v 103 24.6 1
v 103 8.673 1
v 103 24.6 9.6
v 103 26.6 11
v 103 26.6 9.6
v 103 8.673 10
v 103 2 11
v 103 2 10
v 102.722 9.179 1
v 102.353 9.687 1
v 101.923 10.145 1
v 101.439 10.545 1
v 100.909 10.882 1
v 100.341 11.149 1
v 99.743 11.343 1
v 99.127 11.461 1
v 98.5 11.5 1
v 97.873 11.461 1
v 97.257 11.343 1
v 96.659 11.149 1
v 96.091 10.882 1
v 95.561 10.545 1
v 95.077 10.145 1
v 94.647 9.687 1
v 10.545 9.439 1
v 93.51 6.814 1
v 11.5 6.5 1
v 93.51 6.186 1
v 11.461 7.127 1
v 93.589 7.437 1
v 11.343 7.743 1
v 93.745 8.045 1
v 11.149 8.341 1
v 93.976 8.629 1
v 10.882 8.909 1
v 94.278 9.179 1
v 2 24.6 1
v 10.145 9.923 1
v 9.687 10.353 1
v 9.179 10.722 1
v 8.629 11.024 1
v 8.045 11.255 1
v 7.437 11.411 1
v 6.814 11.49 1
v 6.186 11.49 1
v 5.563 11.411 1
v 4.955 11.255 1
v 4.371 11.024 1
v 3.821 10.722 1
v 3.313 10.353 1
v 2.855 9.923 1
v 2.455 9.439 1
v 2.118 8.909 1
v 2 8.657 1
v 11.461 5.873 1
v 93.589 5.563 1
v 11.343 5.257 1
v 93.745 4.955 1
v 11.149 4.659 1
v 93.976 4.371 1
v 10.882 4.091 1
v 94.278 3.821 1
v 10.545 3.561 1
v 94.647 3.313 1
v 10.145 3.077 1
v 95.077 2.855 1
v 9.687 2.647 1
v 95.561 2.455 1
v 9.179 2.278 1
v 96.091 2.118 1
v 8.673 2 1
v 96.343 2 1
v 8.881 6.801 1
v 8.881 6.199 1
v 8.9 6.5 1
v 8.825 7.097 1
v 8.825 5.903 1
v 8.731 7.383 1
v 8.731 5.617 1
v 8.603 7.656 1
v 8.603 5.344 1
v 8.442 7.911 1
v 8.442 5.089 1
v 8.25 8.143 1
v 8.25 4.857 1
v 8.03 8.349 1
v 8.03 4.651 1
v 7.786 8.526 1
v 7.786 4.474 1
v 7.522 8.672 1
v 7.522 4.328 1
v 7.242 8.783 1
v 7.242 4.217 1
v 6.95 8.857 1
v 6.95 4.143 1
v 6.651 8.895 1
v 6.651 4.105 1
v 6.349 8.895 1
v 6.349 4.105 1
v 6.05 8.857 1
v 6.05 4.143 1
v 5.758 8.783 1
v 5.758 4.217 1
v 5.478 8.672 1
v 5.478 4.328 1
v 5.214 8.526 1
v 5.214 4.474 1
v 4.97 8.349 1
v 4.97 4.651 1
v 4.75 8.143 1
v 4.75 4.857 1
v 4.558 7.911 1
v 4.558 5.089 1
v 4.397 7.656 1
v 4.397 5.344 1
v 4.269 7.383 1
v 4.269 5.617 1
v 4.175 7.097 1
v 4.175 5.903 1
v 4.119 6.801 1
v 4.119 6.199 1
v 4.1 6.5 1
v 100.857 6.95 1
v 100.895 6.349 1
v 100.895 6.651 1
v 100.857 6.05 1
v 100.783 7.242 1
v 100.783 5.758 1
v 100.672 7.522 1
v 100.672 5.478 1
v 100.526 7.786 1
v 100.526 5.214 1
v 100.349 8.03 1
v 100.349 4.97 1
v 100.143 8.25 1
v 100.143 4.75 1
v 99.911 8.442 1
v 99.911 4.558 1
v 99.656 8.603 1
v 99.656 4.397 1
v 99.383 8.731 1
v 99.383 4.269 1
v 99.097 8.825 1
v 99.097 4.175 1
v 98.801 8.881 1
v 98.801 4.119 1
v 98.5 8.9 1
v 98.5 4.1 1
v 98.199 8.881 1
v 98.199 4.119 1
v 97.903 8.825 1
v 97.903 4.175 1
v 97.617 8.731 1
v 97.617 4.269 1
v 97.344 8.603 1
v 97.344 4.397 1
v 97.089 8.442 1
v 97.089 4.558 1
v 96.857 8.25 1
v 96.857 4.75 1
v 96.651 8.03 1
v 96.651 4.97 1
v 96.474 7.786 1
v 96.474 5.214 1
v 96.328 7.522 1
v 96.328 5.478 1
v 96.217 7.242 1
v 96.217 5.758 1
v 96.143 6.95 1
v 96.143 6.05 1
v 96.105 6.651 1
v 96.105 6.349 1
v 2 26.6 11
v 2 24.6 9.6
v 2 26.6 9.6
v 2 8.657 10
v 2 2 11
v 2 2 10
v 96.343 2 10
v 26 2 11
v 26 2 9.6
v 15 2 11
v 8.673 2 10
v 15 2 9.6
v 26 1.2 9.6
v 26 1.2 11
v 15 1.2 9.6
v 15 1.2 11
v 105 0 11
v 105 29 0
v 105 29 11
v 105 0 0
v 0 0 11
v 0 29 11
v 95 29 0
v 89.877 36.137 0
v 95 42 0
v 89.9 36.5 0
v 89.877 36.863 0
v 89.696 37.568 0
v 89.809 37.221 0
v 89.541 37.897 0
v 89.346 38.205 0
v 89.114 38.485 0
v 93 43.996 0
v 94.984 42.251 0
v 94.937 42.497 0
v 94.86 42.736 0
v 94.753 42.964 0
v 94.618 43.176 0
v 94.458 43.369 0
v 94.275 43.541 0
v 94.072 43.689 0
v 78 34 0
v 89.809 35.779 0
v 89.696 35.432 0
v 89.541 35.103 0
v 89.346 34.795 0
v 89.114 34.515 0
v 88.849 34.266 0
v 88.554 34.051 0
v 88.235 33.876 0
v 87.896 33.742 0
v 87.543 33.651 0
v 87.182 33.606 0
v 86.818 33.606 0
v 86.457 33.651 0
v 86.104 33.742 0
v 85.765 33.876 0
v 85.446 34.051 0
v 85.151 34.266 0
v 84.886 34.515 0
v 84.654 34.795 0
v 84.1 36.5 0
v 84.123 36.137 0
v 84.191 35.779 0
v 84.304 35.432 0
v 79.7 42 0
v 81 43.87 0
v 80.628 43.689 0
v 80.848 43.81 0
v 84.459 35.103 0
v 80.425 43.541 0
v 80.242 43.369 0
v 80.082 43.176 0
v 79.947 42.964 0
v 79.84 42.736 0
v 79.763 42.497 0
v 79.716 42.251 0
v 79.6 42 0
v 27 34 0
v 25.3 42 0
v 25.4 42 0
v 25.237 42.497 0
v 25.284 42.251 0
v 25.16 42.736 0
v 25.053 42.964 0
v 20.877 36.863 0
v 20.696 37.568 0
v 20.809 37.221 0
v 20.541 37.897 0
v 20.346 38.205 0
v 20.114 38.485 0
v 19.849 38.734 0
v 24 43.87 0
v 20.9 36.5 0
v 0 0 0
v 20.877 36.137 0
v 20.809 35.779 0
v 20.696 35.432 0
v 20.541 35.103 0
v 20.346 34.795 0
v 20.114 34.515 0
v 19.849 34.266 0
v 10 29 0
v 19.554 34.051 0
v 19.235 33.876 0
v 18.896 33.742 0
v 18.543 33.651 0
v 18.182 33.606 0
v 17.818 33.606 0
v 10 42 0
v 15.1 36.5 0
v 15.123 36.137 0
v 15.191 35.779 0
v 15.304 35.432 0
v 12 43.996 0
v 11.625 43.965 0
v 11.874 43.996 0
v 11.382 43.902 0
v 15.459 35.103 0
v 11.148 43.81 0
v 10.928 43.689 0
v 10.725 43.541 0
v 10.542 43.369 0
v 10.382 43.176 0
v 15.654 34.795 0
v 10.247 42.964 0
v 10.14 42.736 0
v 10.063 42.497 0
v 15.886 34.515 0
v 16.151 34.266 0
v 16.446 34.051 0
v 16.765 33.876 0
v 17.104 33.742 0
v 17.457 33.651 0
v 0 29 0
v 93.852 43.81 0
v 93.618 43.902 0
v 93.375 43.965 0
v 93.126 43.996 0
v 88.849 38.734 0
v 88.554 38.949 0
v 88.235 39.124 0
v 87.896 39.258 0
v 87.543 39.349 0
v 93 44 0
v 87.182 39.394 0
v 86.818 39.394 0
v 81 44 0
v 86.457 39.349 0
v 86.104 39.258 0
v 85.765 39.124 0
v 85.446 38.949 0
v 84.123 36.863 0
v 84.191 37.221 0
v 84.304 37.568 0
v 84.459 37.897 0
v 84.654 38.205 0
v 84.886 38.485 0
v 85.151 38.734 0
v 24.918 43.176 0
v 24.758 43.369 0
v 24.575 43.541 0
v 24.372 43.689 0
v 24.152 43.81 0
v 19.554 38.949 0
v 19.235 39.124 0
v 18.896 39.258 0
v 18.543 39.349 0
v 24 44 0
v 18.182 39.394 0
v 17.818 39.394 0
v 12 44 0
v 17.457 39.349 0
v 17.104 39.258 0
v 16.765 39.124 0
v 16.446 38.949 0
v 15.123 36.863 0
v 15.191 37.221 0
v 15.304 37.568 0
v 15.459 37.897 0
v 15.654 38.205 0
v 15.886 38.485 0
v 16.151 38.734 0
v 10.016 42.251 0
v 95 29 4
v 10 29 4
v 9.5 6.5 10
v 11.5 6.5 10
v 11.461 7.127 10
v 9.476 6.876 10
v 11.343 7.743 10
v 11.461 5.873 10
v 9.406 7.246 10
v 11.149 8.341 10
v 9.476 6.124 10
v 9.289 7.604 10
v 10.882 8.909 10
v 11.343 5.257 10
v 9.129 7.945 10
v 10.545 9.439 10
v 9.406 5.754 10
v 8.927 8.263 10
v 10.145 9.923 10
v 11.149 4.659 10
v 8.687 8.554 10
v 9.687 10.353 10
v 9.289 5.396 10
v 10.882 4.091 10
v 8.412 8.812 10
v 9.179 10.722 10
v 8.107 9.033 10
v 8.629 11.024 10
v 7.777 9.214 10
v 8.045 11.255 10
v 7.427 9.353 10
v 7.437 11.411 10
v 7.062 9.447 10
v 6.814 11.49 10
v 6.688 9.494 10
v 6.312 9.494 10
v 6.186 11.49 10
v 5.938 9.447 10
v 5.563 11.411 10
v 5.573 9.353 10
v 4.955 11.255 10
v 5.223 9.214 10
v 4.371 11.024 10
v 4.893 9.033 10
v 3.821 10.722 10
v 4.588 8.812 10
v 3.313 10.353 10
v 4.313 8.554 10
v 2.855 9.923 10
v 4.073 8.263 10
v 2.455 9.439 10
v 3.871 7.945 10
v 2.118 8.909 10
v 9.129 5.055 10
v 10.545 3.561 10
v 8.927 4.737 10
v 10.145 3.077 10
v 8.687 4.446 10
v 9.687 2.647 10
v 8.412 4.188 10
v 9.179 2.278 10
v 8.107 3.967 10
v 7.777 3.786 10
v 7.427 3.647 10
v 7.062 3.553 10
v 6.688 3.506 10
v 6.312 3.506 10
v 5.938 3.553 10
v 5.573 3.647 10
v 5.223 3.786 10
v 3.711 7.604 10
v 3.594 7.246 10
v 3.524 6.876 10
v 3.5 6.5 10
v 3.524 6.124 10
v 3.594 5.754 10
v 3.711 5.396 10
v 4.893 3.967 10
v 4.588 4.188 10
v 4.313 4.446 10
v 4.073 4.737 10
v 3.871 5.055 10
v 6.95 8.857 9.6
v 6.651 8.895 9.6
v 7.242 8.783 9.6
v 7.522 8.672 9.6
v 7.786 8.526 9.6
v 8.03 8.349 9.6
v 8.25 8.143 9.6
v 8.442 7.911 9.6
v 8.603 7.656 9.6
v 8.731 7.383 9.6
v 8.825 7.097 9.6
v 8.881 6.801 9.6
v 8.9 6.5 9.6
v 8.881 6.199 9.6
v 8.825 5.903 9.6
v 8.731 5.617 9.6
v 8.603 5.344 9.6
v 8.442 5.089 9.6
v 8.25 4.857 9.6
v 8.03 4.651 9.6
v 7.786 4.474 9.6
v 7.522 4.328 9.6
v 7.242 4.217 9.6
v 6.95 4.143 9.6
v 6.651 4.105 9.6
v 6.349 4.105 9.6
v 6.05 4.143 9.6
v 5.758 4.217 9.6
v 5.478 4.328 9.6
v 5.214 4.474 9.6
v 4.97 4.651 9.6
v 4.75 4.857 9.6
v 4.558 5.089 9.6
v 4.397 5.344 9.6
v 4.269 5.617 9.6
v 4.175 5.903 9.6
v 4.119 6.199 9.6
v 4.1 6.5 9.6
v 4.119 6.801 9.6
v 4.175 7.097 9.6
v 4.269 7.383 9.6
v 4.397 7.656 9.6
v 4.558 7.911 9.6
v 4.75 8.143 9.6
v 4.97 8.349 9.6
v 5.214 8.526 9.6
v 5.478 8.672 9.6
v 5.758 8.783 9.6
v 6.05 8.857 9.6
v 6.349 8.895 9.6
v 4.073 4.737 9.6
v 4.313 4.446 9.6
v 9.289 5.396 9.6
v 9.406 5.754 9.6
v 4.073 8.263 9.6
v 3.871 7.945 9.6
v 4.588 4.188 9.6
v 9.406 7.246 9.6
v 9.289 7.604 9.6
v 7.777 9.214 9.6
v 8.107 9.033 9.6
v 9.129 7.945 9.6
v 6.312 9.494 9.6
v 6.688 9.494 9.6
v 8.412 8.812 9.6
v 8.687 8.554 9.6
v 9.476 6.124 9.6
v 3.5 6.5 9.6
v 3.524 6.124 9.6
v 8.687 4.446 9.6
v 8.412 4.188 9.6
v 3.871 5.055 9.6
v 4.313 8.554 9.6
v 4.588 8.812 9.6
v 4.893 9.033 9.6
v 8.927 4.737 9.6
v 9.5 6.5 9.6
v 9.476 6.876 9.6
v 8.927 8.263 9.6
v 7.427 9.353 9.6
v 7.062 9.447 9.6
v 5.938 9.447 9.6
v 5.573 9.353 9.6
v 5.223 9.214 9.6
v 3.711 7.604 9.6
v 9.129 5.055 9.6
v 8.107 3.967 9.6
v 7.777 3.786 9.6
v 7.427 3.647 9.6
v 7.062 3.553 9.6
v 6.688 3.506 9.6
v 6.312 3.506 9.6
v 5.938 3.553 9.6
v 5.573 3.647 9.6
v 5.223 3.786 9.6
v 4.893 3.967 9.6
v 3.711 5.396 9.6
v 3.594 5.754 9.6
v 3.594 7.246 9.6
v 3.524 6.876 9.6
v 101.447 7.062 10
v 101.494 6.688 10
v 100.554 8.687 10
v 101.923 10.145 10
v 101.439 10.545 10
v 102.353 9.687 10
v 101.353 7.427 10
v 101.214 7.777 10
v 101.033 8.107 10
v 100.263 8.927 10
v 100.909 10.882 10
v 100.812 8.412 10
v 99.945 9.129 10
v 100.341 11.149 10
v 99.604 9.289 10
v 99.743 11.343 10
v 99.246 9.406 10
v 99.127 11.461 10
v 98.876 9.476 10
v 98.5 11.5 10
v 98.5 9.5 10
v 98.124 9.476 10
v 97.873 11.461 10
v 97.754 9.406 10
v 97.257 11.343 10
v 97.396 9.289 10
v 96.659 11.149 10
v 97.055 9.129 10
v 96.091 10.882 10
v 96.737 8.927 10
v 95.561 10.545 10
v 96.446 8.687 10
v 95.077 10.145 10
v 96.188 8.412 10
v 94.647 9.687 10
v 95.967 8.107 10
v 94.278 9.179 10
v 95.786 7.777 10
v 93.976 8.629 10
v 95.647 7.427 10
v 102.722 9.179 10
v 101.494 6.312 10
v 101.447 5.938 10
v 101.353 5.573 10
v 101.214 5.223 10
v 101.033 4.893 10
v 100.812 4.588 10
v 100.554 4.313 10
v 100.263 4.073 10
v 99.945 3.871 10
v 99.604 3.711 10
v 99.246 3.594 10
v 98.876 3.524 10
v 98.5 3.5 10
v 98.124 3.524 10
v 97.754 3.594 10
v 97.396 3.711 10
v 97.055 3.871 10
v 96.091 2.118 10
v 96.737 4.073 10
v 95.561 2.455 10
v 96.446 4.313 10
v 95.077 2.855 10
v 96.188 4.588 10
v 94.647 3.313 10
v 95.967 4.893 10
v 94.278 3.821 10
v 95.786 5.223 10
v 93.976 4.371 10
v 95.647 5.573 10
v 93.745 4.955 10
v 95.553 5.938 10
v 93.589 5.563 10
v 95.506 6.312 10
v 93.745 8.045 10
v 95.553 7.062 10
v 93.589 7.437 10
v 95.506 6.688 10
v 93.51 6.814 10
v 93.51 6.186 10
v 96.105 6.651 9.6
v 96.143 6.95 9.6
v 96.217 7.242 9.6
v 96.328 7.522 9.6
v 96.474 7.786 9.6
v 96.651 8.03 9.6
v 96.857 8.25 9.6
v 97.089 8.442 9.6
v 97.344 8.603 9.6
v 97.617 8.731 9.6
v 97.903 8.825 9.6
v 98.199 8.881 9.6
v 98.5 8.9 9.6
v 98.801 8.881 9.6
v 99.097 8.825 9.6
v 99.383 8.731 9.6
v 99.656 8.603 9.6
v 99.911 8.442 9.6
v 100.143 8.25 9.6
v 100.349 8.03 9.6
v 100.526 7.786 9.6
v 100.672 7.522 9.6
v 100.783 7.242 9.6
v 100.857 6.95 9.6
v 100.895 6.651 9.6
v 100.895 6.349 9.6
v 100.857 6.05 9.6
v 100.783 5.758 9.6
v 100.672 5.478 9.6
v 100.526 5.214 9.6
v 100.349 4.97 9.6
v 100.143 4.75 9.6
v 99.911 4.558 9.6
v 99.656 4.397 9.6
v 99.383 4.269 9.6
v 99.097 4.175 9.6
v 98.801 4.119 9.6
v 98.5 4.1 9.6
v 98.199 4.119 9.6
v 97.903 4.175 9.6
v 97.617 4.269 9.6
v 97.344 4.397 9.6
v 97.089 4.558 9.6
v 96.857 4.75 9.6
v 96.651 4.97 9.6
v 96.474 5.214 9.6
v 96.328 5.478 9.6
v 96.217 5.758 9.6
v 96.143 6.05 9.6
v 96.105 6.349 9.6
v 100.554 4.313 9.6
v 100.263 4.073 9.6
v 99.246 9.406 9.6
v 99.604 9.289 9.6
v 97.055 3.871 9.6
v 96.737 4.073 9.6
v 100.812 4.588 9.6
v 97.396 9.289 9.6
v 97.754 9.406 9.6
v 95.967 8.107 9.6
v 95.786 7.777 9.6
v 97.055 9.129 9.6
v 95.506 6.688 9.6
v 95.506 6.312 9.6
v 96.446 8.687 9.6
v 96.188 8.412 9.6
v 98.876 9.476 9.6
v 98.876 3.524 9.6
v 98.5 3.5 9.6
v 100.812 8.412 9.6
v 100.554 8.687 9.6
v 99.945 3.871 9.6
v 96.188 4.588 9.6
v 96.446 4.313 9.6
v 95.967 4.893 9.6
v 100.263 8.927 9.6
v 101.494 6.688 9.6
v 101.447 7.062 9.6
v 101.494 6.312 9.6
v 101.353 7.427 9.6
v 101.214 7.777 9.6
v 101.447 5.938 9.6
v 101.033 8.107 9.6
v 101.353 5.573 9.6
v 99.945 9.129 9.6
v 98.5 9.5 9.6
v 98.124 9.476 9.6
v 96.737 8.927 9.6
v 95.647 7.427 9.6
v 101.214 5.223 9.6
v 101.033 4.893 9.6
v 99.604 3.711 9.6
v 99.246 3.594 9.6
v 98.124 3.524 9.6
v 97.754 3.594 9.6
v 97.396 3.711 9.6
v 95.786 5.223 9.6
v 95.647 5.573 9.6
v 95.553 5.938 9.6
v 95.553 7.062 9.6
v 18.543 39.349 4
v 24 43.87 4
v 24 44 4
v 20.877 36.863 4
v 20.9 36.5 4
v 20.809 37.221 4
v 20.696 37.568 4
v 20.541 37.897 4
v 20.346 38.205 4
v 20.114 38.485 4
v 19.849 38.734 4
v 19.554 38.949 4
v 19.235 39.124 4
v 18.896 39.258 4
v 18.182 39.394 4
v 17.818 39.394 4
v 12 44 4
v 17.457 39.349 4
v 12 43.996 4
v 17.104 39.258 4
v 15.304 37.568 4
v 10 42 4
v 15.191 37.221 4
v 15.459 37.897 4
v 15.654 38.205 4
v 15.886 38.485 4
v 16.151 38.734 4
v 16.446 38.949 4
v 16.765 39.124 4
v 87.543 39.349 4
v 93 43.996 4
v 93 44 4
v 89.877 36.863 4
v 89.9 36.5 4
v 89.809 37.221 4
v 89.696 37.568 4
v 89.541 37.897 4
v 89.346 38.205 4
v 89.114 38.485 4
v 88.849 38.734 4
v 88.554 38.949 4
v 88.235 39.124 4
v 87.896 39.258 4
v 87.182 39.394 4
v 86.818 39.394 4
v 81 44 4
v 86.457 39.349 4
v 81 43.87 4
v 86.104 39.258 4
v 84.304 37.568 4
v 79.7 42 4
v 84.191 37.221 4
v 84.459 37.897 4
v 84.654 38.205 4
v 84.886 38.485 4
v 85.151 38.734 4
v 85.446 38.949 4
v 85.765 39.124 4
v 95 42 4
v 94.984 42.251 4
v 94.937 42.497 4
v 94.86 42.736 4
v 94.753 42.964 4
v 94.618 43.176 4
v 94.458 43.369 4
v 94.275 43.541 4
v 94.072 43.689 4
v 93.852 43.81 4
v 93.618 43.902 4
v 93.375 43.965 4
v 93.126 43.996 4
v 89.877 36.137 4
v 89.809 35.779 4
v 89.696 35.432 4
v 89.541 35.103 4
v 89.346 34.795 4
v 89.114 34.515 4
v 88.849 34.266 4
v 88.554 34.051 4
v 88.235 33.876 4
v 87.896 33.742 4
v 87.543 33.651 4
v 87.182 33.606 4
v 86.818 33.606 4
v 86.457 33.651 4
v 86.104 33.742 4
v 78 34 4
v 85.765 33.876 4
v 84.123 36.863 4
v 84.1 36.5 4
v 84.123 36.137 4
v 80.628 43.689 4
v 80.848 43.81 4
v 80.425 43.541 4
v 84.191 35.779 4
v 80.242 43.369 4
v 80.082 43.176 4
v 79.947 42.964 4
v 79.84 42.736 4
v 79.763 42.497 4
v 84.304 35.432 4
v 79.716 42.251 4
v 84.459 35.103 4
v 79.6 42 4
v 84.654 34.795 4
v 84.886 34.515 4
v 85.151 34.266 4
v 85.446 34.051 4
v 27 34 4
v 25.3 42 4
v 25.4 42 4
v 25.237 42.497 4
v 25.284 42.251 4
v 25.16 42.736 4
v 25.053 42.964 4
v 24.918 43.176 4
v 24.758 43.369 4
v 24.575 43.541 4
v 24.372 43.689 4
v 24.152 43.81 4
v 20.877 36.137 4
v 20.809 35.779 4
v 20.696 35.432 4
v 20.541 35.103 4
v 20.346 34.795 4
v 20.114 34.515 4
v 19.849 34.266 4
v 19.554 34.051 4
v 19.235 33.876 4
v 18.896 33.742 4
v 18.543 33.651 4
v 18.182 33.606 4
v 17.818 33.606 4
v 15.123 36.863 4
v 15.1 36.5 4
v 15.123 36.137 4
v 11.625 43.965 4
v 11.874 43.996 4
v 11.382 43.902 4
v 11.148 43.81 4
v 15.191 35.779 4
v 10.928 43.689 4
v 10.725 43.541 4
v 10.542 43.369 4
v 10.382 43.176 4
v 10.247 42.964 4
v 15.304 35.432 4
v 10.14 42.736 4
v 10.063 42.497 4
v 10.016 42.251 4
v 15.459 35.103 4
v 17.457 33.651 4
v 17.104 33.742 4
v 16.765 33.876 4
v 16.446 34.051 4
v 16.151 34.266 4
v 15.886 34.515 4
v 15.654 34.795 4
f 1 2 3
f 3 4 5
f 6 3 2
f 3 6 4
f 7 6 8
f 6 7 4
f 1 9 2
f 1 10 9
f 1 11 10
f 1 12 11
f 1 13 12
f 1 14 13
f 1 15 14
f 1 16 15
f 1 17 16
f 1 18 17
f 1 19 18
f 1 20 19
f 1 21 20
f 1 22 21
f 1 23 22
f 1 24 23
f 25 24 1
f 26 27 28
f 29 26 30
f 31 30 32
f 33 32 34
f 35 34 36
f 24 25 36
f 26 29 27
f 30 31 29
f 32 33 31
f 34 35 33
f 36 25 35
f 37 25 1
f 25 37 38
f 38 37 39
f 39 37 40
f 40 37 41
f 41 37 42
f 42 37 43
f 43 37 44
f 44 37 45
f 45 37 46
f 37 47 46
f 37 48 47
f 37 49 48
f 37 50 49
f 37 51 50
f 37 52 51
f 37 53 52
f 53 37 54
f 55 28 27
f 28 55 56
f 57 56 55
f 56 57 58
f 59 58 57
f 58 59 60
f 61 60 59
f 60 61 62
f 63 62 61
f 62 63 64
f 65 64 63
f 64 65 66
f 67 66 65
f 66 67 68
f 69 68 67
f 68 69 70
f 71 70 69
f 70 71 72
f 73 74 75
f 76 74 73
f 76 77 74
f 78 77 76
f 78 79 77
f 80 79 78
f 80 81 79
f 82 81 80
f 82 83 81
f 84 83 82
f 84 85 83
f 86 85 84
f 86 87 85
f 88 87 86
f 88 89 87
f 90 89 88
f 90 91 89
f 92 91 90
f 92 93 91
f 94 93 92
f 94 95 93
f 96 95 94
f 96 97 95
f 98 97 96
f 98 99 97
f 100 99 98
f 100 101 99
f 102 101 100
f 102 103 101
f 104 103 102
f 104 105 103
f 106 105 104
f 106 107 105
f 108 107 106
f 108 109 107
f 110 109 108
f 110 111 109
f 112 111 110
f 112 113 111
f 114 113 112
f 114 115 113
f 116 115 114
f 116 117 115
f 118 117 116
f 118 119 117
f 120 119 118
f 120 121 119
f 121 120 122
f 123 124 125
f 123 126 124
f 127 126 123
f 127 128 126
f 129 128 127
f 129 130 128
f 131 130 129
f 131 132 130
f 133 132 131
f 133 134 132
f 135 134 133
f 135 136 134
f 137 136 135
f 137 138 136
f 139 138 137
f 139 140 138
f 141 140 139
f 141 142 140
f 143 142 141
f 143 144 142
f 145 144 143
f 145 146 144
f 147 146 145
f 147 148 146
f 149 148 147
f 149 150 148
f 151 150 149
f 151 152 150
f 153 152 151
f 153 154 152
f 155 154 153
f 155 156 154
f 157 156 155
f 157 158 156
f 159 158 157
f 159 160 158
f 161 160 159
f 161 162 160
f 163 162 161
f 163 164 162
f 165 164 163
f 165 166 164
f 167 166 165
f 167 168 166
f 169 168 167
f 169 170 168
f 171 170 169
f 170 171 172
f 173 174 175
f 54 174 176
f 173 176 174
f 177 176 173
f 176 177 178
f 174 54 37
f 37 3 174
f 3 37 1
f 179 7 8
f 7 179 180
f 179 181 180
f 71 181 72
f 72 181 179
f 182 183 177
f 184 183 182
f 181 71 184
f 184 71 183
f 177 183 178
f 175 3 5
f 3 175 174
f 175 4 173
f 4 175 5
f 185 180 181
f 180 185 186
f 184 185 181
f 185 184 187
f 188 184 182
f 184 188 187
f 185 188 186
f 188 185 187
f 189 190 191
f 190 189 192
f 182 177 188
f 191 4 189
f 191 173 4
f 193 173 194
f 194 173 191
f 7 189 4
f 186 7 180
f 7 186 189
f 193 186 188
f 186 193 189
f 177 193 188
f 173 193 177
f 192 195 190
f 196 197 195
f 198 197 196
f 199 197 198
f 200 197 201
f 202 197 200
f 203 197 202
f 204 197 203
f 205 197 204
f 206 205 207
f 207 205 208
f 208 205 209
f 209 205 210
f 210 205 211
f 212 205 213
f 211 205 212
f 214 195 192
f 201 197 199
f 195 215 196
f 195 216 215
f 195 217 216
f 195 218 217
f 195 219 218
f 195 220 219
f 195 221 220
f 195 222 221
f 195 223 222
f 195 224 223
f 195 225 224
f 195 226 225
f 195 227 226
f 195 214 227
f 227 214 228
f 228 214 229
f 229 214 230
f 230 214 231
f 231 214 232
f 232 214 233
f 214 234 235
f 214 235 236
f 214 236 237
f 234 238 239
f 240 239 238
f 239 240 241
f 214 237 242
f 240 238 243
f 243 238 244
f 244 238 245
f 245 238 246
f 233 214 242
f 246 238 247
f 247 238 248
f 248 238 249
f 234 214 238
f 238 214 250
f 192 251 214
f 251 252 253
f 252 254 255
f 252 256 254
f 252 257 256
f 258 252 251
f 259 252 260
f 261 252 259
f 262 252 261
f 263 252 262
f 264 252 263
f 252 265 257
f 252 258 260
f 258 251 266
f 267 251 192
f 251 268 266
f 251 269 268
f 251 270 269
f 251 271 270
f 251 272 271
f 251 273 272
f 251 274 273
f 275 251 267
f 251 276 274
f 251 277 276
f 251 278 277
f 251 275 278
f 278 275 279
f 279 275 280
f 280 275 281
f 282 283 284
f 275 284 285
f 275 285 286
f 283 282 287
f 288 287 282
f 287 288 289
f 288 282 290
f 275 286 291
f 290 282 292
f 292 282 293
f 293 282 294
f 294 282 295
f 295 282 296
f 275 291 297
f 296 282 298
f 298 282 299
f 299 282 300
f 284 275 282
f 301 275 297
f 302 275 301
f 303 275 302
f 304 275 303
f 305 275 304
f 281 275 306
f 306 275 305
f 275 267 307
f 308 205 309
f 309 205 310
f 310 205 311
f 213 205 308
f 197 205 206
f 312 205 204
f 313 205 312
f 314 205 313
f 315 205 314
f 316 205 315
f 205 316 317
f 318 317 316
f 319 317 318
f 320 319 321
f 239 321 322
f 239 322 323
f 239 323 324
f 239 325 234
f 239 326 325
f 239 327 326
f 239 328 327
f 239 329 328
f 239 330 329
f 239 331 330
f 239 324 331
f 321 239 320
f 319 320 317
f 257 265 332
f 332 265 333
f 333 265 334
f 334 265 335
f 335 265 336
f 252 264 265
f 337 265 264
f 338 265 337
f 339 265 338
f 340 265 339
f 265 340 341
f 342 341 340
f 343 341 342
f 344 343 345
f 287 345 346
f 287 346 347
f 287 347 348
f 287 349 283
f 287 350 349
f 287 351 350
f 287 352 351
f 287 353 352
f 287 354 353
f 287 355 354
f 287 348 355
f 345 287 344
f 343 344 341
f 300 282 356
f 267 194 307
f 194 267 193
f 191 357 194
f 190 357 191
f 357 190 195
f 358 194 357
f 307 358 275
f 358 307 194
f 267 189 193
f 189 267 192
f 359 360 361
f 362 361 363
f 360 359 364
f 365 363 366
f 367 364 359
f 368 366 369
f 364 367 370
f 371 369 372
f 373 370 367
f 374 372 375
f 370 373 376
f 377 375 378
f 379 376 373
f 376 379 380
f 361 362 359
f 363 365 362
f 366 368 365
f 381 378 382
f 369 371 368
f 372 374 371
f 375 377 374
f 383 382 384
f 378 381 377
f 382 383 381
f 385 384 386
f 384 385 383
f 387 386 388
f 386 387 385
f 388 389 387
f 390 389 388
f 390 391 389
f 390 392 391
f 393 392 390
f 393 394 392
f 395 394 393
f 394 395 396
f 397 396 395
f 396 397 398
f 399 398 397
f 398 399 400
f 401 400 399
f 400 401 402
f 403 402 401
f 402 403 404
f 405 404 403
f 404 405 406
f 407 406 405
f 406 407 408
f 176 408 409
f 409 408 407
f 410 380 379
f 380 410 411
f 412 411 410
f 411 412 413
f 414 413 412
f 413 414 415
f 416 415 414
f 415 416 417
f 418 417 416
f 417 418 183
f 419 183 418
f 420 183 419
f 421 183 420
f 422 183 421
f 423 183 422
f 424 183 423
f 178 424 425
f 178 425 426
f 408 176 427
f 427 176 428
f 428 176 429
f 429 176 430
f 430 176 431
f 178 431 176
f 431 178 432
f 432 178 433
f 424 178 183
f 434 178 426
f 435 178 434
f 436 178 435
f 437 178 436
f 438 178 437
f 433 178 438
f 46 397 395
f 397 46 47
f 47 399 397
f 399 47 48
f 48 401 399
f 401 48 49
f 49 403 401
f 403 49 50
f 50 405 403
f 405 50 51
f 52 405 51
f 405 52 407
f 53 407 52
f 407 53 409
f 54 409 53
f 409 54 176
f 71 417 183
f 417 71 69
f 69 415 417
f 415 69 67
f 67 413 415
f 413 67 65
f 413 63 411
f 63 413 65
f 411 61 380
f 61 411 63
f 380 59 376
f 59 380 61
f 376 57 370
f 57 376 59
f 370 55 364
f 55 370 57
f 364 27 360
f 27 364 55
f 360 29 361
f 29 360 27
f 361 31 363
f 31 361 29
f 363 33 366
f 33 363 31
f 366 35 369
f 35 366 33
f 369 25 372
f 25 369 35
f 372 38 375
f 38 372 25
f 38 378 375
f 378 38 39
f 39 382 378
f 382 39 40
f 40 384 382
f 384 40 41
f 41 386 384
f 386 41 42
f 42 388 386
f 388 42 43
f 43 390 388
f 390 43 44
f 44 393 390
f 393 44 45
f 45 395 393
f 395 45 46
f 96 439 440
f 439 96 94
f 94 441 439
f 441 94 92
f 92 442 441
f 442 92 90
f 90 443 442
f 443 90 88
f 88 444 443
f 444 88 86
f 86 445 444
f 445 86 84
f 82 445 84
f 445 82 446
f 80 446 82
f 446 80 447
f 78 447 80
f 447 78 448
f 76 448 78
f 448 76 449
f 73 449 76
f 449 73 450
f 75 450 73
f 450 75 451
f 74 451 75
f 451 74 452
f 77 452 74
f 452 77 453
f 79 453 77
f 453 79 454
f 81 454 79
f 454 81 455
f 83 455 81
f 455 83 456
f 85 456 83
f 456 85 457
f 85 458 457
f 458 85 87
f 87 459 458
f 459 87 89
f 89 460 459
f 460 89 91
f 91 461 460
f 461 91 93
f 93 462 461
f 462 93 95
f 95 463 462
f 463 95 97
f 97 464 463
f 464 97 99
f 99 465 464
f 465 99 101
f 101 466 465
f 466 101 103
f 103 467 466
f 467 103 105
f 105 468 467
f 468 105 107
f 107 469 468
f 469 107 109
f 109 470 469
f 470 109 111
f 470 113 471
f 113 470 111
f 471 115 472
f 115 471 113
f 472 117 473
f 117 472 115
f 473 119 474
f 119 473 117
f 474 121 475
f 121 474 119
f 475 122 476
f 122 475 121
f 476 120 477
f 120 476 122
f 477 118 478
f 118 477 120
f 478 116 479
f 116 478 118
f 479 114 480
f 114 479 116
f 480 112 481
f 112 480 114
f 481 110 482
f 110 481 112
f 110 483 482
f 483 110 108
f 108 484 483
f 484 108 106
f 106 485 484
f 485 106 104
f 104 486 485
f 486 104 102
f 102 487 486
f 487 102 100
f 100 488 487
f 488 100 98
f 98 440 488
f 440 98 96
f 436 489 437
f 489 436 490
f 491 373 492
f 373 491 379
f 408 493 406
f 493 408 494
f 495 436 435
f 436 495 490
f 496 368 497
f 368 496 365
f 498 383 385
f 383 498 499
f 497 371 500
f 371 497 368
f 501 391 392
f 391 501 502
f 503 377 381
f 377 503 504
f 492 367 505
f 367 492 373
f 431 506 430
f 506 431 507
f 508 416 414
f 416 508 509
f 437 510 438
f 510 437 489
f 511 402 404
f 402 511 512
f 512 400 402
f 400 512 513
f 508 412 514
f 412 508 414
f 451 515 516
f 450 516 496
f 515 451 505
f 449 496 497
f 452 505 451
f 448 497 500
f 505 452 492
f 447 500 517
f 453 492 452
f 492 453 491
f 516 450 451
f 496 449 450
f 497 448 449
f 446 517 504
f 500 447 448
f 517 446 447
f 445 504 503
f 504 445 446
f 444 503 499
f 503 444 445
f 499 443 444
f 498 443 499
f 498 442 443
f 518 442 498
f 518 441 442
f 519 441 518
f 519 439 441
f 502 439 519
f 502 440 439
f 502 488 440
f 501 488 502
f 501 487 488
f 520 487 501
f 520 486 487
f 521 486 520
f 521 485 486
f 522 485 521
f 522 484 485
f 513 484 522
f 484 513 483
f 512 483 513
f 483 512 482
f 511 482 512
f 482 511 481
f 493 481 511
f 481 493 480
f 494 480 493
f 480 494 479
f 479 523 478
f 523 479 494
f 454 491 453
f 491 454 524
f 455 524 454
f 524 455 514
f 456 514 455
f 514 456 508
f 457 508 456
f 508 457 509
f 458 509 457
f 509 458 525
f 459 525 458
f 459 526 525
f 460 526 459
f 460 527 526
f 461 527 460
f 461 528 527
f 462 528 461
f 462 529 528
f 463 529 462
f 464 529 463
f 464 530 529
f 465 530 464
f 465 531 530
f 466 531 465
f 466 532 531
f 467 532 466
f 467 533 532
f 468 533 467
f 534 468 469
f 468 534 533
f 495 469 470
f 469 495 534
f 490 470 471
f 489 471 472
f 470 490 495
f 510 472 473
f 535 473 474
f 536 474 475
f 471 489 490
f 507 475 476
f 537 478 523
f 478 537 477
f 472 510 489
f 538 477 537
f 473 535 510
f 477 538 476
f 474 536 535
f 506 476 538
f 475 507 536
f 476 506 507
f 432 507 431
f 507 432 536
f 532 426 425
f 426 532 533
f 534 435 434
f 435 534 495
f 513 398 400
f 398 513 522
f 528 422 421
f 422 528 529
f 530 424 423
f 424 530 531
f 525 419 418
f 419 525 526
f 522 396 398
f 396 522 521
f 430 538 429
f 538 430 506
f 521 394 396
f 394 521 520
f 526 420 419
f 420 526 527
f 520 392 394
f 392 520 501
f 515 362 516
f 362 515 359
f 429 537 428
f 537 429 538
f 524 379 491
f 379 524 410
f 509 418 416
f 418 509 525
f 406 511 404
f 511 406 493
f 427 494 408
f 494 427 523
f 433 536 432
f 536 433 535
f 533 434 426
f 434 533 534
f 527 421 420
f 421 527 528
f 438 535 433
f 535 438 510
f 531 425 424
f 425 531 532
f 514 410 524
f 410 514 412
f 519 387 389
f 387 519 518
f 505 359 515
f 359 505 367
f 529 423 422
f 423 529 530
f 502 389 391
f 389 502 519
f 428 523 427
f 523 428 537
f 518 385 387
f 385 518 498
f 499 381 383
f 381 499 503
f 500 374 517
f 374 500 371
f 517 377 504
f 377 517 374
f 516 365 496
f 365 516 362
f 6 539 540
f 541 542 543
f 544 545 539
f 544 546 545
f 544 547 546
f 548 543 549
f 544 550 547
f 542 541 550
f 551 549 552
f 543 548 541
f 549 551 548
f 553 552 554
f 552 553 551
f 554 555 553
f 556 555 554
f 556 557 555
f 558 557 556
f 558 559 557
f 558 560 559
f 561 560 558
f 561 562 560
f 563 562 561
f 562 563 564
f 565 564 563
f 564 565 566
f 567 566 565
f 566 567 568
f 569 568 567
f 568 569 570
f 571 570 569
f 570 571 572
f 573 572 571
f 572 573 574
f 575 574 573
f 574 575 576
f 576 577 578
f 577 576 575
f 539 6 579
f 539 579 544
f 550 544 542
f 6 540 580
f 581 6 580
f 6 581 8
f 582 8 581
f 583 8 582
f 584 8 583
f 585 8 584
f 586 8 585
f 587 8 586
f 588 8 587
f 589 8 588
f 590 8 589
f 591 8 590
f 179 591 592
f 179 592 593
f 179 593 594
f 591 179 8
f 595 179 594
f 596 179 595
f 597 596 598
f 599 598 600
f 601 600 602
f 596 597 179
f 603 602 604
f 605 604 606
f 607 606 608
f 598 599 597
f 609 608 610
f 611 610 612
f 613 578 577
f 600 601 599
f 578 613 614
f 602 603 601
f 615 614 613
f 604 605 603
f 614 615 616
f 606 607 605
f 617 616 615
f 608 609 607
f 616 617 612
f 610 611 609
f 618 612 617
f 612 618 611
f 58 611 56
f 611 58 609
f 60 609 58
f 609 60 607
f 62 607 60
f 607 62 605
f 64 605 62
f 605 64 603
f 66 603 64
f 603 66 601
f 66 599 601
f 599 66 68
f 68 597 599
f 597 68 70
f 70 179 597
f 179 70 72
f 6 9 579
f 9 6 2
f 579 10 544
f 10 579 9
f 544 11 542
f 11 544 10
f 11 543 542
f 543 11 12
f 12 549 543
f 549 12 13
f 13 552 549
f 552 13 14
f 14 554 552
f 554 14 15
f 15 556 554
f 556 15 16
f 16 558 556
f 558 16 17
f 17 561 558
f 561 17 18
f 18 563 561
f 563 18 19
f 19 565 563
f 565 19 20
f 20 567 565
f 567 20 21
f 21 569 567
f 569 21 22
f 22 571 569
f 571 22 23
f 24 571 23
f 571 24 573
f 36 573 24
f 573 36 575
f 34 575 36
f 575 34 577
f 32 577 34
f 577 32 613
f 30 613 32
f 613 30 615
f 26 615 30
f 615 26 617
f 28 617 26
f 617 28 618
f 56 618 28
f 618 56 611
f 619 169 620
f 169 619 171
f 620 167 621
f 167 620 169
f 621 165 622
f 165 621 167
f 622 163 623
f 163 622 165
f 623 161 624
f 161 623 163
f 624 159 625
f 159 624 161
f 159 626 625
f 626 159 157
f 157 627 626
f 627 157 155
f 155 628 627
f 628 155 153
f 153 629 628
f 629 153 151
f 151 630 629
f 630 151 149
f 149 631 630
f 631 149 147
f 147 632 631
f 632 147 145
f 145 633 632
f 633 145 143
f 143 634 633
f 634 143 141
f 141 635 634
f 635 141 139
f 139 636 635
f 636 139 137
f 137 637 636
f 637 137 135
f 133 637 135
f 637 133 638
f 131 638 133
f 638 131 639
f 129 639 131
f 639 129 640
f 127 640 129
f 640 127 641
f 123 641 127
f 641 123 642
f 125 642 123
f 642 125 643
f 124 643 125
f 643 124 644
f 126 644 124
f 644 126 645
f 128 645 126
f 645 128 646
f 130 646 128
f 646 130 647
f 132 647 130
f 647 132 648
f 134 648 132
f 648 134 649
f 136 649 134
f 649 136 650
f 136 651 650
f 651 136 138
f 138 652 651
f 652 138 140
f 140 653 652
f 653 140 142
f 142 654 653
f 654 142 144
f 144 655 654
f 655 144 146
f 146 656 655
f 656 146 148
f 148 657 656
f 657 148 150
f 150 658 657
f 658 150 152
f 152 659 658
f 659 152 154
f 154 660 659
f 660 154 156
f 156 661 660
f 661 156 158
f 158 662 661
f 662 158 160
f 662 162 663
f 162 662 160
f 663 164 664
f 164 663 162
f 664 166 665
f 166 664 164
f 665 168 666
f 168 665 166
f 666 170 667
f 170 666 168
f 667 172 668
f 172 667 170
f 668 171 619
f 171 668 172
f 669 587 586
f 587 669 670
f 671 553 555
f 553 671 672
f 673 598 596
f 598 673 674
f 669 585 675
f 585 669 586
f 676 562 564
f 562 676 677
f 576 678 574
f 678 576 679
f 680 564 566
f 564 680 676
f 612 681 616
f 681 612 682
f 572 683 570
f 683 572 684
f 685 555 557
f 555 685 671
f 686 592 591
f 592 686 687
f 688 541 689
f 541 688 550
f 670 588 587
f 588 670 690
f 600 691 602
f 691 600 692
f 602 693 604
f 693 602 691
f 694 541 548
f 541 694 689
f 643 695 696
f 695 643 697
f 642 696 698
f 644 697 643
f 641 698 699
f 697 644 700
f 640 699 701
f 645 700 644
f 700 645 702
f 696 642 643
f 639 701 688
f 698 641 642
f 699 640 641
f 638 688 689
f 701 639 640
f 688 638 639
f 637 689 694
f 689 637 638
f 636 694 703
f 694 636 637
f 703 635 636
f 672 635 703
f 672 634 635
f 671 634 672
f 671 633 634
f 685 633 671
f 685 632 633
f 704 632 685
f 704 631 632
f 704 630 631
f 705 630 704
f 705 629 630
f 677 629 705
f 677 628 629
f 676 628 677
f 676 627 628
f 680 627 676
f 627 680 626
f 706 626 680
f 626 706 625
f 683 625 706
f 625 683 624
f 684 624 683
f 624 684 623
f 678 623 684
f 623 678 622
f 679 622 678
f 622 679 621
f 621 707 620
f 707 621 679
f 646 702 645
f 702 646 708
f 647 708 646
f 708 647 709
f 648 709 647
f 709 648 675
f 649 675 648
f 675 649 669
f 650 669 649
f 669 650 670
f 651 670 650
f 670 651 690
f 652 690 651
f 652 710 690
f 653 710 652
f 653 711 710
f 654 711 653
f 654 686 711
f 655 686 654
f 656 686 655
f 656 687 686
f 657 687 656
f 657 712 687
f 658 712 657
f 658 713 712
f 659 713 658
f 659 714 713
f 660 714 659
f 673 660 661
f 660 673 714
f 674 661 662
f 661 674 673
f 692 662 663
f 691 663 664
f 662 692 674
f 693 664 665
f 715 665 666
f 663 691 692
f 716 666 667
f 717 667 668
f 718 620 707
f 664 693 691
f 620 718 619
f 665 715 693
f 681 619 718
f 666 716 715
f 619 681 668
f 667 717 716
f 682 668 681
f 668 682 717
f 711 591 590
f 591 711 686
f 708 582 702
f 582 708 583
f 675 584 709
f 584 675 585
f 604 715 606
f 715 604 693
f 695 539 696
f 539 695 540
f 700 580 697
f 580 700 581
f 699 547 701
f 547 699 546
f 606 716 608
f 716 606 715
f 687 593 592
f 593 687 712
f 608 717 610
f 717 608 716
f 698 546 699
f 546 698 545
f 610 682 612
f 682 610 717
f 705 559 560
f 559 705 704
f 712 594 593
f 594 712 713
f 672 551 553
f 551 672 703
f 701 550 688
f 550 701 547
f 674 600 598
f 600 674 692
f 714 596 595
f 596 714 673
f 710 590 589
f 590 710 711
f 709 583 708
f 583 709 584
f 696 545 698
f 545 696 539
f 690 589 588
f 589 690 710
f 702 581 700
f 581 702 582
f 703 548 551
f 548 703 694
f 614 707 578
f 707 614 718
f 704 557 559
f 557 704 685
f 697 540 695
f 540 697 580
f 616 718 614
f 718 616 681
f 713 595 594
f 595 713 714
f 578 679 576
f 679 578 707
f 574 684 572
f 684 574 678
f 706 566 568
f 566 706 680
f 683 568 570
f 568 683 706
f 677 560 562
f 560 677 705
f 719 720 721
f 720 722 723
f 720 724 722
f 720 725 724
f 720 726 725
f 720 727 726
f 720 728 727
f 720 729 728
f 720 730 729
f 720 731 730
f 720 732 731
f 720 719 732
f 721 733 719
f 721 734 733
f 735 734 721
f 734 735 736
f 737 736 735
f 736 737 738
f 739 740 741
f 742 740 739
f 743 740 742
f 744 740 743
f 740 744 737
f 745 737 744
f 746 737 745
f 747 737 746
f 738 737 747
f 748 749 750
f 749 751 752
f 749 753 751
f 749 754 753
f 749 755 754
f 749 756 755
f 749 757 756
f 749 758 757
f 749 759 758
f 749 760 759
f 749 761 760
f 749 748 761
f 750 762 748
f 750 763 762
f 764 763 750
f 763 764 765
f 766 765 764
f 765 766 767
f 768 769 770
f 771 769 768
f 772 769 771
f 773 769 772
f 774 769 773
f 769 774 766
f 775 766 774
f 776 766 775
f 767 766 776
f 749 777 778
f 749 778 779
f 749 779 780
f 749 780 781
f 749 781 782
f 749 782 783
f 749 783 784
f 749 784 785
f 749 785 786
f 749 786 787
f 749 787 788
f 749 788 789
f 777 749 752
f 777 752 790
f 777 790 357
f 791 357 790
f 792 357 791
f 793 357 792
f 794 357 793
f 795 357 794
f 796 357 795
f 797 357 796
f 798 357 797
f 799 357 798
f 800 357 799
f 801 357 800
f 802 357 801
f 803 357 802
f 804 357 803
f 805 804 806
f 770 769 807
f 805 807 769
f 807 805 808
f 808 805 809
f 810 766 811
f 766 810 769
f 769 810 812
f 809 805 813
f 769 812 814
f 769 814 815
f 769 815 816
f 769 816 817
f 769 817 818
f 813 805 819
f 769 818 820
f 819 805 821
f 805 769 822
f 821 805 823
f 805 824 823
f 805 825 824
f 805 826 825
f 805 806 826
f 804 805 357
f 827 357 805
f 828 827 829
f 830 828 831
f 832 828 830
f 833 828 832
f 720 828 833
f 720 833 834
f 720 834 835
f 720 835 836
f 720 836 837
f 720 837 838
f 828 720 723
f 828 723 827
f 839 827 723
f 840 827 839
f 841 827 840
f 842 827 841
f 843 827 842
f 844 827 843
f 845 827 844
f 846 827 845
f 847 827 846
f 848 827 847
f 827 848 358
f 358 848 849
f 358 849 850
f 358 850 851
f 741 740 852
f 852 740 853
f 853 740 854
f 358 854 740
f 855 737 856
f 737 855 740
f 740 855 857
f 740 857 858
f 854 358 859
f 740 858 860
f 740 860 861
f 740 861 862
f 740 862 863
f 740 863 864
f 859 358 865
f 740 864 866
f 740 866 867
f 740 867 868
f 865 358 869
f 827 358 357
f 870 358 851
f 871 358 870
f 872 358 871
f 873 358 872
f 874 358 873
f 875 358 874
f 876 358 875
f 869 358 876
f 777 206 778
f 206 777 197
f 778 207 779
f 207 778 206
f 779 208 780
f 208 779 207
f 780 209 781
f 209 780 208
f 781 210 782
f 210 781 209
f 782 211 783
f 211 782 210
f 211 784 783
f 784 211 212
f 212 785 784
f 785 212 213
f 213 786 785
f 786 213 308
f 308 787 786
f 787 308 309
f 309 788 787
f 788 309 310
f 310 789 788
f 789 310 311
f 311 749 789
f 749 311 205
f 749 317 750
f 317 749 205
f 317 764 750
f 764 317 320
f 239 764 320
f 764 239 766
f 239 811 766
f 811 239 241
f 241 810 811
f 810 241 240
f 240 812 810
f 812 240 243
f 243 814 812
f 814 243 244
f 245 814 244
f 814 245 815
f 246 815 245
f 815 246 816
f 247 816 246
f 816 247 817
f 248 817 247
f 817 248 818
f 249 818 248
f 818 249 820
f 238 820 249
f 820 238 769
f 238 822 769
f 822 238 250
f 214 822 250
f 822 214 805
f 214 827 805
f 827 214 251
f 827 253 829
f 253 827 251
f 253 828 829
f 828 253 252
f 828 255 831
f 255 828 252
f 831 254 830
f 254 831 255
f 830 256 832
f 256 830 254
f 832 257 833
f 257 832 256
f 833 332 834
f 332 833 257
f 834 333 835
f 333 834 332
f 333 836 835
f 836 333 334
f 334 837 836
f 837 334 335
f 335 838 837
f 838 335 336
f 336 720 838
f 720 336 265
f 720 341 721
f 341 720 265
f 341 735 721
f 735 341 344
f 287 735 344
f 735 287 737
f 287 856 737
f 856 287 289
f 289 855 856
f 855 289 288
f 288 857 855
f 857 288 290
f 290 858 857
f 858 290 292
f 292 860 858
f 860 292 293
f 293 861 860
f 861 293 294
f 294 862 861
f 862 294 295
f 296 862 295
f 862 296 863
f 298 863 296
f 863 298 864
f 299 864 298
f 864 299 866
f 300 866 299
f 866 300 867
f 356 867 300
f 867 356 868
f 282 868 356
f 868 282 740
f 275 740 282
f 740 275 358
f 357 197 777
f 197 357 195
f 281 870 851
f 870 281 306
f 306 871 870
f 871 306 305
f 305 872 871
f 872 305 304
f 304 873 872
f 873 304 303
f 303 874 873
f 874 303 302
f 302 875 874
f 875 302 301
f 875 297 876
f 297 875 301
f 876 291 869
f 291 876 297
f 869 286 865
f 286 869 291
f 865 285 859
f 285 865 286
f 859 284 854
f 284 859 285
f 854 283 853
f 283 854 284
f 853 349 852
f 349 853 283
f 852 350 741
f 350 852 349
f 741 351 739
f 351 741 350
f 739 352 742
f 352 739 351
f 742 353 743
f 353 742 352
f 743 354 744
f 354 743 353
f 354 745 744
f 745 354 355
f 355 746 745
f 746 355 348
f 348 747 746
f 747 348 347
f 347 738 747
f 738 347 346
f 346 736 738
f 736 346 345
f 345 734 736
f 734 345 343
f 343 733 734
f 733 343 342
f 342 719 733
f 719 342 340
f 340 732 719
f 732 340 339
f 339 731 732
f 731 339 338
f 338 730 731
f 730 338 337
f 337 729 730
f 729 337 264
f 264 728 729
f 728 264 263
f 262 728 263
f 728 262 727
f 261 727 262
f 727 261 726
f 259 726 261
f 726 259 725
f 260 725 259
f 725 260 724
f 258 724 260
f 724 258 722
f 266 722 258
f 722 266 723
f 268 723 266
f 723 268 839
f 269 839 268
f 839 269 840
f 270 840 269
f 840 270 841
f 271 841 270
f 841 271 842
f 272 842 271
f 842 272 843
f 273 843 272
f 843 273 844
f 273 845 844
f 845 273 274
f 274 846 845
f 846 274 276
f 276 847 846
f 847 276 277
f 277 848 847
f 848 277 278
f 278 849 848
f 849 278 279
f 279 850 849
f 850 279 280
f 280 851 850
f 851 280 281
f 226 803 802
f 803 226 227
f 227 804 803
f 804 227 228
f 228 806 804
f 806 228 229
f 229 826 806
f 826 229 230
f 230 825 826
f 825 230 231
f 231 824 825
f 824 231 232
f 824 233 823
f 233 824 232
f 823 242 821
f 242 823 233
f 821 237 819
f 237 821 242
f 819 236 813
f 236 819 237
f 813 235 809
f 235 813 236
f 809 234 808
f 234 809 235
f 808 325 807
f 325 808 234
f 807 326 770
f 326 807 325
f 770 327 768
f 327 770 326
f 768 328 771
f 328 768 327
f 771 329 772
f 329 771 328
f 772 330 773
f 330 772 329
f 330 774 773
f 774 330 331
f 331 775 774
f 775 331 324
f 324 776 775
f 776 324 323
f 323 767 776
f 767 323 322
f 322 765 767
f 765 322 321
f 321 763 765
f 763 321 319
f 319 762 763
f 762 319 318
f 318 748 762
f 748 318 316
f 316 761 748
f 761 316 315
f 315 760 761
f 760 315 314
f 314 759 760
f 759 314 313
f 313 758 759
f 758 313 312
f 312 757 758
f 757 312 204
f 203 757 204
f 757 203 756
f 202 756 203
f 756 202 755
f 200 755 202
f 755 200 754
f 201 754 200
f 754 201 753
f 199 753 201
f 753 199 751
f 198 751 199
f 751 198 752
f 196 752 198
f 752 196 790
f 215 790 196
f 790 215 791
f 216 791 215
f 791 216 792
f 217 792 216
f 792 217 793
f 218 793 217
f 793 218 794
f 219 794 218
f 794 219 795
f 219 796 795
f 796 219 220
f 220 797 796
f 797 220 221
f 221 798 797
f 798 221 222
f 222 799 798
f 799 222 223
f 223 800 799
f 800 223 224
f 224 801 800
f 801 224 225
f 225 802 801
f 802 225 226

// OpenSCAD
module mountFlangeOutline() {
    mount_points = [
        [0,0],
        [0,15],
        [15,15],
        [17,5],
        [68,5],
        [70,15],
        [85,15],
        [85,0],
    ];

    mount_lines = [
        [0,1,2,3,4,5,6,7]
    ];

    polygon(mount_points, mount_lines); 
}

module mountFlangeProfile() {
    difference() {
        mountFlangeOutline();
        
        translate([8,7.5,0]) {
            circle(d = 5.8, $fn = 50);
        }
        
        translate([85-8,7.5,0]) {
            circle(d = 5.8, $fn = 50);
        }
    }
}

module mountFlangeProfileRounded() {
    union() {
        difference() {
            mountFlangeProfile();
            
            translate([0,13]) {
                square(2);
            }
            
            translate([14,13]) {
                square(2);
            }
            
            translate([69,13]) {
                square(2);
            }

            translate([83,13]) {
                square(2);
            }
        }
        
        translate([2,13]) {
            circle(2, $fn = 50);
        }
        
        translate([13.3,13]) {
            circle(2, $fn = 50);
        }
        
        translate([71.7,13]) {
            circle(2, $fn = 50);
        }

        translate([83,13]) {
            circle(2, $fn = 50);
        }
    }
}

module mountFlange() {
    linear_extrude(4, false) {
        mountFlangeProfileRounded();
    }
}

module klipperBox(h = 10) {
    difference()  {
        // Base dimentions from https://www.printables.com/model/228244-klipper-expander-mount-for-aluminum-extrusions
        cube([105, 29, h+1]);
        
           
        union()  {
            // Interior empty space
            translate([2,2,1]) {
                cube([101, 22.6, h+1]);
            }
            
            translate([2, 2, h-0.4]) {
                // The Klipper Expander bounding box.
                cube([101, 24.6, 20]);
            }
            
            translate([15, 1.2, h-0.4]) {
                // USB cutout
                cube([11, 10, 2]);
            }
        };
    };
}

module klipperMountingPost(h = 10) {
    difference() {
        linear_extrude(h) {
            difference () {
                union() {
                    circle(d = 10, $fn = 50);
                    square(5);
                }
                
                circle(d = 4.8, $fn = 50);
            }
        }
        
        translate([0,0,h-0.4]) {
            cylinder(h = 1, d = 6, $fn = 50);
        }
    }
}

klipperBox(h = 10);

// mounting posts
translate([6.5, 6.5, 0]) {
    rotate([0, 0, 180]) {
        klipperMountingPost(h = 10);
    }
}

translate([105 - 6.5, 6.5, 0]) {
    rotate([0,0,270]) {
        klipperMountingPost(h = 10);
    }
}

translate([10,29,0]) {
    rotate([0,0,0]) {
        mountFlange();
    }
}
